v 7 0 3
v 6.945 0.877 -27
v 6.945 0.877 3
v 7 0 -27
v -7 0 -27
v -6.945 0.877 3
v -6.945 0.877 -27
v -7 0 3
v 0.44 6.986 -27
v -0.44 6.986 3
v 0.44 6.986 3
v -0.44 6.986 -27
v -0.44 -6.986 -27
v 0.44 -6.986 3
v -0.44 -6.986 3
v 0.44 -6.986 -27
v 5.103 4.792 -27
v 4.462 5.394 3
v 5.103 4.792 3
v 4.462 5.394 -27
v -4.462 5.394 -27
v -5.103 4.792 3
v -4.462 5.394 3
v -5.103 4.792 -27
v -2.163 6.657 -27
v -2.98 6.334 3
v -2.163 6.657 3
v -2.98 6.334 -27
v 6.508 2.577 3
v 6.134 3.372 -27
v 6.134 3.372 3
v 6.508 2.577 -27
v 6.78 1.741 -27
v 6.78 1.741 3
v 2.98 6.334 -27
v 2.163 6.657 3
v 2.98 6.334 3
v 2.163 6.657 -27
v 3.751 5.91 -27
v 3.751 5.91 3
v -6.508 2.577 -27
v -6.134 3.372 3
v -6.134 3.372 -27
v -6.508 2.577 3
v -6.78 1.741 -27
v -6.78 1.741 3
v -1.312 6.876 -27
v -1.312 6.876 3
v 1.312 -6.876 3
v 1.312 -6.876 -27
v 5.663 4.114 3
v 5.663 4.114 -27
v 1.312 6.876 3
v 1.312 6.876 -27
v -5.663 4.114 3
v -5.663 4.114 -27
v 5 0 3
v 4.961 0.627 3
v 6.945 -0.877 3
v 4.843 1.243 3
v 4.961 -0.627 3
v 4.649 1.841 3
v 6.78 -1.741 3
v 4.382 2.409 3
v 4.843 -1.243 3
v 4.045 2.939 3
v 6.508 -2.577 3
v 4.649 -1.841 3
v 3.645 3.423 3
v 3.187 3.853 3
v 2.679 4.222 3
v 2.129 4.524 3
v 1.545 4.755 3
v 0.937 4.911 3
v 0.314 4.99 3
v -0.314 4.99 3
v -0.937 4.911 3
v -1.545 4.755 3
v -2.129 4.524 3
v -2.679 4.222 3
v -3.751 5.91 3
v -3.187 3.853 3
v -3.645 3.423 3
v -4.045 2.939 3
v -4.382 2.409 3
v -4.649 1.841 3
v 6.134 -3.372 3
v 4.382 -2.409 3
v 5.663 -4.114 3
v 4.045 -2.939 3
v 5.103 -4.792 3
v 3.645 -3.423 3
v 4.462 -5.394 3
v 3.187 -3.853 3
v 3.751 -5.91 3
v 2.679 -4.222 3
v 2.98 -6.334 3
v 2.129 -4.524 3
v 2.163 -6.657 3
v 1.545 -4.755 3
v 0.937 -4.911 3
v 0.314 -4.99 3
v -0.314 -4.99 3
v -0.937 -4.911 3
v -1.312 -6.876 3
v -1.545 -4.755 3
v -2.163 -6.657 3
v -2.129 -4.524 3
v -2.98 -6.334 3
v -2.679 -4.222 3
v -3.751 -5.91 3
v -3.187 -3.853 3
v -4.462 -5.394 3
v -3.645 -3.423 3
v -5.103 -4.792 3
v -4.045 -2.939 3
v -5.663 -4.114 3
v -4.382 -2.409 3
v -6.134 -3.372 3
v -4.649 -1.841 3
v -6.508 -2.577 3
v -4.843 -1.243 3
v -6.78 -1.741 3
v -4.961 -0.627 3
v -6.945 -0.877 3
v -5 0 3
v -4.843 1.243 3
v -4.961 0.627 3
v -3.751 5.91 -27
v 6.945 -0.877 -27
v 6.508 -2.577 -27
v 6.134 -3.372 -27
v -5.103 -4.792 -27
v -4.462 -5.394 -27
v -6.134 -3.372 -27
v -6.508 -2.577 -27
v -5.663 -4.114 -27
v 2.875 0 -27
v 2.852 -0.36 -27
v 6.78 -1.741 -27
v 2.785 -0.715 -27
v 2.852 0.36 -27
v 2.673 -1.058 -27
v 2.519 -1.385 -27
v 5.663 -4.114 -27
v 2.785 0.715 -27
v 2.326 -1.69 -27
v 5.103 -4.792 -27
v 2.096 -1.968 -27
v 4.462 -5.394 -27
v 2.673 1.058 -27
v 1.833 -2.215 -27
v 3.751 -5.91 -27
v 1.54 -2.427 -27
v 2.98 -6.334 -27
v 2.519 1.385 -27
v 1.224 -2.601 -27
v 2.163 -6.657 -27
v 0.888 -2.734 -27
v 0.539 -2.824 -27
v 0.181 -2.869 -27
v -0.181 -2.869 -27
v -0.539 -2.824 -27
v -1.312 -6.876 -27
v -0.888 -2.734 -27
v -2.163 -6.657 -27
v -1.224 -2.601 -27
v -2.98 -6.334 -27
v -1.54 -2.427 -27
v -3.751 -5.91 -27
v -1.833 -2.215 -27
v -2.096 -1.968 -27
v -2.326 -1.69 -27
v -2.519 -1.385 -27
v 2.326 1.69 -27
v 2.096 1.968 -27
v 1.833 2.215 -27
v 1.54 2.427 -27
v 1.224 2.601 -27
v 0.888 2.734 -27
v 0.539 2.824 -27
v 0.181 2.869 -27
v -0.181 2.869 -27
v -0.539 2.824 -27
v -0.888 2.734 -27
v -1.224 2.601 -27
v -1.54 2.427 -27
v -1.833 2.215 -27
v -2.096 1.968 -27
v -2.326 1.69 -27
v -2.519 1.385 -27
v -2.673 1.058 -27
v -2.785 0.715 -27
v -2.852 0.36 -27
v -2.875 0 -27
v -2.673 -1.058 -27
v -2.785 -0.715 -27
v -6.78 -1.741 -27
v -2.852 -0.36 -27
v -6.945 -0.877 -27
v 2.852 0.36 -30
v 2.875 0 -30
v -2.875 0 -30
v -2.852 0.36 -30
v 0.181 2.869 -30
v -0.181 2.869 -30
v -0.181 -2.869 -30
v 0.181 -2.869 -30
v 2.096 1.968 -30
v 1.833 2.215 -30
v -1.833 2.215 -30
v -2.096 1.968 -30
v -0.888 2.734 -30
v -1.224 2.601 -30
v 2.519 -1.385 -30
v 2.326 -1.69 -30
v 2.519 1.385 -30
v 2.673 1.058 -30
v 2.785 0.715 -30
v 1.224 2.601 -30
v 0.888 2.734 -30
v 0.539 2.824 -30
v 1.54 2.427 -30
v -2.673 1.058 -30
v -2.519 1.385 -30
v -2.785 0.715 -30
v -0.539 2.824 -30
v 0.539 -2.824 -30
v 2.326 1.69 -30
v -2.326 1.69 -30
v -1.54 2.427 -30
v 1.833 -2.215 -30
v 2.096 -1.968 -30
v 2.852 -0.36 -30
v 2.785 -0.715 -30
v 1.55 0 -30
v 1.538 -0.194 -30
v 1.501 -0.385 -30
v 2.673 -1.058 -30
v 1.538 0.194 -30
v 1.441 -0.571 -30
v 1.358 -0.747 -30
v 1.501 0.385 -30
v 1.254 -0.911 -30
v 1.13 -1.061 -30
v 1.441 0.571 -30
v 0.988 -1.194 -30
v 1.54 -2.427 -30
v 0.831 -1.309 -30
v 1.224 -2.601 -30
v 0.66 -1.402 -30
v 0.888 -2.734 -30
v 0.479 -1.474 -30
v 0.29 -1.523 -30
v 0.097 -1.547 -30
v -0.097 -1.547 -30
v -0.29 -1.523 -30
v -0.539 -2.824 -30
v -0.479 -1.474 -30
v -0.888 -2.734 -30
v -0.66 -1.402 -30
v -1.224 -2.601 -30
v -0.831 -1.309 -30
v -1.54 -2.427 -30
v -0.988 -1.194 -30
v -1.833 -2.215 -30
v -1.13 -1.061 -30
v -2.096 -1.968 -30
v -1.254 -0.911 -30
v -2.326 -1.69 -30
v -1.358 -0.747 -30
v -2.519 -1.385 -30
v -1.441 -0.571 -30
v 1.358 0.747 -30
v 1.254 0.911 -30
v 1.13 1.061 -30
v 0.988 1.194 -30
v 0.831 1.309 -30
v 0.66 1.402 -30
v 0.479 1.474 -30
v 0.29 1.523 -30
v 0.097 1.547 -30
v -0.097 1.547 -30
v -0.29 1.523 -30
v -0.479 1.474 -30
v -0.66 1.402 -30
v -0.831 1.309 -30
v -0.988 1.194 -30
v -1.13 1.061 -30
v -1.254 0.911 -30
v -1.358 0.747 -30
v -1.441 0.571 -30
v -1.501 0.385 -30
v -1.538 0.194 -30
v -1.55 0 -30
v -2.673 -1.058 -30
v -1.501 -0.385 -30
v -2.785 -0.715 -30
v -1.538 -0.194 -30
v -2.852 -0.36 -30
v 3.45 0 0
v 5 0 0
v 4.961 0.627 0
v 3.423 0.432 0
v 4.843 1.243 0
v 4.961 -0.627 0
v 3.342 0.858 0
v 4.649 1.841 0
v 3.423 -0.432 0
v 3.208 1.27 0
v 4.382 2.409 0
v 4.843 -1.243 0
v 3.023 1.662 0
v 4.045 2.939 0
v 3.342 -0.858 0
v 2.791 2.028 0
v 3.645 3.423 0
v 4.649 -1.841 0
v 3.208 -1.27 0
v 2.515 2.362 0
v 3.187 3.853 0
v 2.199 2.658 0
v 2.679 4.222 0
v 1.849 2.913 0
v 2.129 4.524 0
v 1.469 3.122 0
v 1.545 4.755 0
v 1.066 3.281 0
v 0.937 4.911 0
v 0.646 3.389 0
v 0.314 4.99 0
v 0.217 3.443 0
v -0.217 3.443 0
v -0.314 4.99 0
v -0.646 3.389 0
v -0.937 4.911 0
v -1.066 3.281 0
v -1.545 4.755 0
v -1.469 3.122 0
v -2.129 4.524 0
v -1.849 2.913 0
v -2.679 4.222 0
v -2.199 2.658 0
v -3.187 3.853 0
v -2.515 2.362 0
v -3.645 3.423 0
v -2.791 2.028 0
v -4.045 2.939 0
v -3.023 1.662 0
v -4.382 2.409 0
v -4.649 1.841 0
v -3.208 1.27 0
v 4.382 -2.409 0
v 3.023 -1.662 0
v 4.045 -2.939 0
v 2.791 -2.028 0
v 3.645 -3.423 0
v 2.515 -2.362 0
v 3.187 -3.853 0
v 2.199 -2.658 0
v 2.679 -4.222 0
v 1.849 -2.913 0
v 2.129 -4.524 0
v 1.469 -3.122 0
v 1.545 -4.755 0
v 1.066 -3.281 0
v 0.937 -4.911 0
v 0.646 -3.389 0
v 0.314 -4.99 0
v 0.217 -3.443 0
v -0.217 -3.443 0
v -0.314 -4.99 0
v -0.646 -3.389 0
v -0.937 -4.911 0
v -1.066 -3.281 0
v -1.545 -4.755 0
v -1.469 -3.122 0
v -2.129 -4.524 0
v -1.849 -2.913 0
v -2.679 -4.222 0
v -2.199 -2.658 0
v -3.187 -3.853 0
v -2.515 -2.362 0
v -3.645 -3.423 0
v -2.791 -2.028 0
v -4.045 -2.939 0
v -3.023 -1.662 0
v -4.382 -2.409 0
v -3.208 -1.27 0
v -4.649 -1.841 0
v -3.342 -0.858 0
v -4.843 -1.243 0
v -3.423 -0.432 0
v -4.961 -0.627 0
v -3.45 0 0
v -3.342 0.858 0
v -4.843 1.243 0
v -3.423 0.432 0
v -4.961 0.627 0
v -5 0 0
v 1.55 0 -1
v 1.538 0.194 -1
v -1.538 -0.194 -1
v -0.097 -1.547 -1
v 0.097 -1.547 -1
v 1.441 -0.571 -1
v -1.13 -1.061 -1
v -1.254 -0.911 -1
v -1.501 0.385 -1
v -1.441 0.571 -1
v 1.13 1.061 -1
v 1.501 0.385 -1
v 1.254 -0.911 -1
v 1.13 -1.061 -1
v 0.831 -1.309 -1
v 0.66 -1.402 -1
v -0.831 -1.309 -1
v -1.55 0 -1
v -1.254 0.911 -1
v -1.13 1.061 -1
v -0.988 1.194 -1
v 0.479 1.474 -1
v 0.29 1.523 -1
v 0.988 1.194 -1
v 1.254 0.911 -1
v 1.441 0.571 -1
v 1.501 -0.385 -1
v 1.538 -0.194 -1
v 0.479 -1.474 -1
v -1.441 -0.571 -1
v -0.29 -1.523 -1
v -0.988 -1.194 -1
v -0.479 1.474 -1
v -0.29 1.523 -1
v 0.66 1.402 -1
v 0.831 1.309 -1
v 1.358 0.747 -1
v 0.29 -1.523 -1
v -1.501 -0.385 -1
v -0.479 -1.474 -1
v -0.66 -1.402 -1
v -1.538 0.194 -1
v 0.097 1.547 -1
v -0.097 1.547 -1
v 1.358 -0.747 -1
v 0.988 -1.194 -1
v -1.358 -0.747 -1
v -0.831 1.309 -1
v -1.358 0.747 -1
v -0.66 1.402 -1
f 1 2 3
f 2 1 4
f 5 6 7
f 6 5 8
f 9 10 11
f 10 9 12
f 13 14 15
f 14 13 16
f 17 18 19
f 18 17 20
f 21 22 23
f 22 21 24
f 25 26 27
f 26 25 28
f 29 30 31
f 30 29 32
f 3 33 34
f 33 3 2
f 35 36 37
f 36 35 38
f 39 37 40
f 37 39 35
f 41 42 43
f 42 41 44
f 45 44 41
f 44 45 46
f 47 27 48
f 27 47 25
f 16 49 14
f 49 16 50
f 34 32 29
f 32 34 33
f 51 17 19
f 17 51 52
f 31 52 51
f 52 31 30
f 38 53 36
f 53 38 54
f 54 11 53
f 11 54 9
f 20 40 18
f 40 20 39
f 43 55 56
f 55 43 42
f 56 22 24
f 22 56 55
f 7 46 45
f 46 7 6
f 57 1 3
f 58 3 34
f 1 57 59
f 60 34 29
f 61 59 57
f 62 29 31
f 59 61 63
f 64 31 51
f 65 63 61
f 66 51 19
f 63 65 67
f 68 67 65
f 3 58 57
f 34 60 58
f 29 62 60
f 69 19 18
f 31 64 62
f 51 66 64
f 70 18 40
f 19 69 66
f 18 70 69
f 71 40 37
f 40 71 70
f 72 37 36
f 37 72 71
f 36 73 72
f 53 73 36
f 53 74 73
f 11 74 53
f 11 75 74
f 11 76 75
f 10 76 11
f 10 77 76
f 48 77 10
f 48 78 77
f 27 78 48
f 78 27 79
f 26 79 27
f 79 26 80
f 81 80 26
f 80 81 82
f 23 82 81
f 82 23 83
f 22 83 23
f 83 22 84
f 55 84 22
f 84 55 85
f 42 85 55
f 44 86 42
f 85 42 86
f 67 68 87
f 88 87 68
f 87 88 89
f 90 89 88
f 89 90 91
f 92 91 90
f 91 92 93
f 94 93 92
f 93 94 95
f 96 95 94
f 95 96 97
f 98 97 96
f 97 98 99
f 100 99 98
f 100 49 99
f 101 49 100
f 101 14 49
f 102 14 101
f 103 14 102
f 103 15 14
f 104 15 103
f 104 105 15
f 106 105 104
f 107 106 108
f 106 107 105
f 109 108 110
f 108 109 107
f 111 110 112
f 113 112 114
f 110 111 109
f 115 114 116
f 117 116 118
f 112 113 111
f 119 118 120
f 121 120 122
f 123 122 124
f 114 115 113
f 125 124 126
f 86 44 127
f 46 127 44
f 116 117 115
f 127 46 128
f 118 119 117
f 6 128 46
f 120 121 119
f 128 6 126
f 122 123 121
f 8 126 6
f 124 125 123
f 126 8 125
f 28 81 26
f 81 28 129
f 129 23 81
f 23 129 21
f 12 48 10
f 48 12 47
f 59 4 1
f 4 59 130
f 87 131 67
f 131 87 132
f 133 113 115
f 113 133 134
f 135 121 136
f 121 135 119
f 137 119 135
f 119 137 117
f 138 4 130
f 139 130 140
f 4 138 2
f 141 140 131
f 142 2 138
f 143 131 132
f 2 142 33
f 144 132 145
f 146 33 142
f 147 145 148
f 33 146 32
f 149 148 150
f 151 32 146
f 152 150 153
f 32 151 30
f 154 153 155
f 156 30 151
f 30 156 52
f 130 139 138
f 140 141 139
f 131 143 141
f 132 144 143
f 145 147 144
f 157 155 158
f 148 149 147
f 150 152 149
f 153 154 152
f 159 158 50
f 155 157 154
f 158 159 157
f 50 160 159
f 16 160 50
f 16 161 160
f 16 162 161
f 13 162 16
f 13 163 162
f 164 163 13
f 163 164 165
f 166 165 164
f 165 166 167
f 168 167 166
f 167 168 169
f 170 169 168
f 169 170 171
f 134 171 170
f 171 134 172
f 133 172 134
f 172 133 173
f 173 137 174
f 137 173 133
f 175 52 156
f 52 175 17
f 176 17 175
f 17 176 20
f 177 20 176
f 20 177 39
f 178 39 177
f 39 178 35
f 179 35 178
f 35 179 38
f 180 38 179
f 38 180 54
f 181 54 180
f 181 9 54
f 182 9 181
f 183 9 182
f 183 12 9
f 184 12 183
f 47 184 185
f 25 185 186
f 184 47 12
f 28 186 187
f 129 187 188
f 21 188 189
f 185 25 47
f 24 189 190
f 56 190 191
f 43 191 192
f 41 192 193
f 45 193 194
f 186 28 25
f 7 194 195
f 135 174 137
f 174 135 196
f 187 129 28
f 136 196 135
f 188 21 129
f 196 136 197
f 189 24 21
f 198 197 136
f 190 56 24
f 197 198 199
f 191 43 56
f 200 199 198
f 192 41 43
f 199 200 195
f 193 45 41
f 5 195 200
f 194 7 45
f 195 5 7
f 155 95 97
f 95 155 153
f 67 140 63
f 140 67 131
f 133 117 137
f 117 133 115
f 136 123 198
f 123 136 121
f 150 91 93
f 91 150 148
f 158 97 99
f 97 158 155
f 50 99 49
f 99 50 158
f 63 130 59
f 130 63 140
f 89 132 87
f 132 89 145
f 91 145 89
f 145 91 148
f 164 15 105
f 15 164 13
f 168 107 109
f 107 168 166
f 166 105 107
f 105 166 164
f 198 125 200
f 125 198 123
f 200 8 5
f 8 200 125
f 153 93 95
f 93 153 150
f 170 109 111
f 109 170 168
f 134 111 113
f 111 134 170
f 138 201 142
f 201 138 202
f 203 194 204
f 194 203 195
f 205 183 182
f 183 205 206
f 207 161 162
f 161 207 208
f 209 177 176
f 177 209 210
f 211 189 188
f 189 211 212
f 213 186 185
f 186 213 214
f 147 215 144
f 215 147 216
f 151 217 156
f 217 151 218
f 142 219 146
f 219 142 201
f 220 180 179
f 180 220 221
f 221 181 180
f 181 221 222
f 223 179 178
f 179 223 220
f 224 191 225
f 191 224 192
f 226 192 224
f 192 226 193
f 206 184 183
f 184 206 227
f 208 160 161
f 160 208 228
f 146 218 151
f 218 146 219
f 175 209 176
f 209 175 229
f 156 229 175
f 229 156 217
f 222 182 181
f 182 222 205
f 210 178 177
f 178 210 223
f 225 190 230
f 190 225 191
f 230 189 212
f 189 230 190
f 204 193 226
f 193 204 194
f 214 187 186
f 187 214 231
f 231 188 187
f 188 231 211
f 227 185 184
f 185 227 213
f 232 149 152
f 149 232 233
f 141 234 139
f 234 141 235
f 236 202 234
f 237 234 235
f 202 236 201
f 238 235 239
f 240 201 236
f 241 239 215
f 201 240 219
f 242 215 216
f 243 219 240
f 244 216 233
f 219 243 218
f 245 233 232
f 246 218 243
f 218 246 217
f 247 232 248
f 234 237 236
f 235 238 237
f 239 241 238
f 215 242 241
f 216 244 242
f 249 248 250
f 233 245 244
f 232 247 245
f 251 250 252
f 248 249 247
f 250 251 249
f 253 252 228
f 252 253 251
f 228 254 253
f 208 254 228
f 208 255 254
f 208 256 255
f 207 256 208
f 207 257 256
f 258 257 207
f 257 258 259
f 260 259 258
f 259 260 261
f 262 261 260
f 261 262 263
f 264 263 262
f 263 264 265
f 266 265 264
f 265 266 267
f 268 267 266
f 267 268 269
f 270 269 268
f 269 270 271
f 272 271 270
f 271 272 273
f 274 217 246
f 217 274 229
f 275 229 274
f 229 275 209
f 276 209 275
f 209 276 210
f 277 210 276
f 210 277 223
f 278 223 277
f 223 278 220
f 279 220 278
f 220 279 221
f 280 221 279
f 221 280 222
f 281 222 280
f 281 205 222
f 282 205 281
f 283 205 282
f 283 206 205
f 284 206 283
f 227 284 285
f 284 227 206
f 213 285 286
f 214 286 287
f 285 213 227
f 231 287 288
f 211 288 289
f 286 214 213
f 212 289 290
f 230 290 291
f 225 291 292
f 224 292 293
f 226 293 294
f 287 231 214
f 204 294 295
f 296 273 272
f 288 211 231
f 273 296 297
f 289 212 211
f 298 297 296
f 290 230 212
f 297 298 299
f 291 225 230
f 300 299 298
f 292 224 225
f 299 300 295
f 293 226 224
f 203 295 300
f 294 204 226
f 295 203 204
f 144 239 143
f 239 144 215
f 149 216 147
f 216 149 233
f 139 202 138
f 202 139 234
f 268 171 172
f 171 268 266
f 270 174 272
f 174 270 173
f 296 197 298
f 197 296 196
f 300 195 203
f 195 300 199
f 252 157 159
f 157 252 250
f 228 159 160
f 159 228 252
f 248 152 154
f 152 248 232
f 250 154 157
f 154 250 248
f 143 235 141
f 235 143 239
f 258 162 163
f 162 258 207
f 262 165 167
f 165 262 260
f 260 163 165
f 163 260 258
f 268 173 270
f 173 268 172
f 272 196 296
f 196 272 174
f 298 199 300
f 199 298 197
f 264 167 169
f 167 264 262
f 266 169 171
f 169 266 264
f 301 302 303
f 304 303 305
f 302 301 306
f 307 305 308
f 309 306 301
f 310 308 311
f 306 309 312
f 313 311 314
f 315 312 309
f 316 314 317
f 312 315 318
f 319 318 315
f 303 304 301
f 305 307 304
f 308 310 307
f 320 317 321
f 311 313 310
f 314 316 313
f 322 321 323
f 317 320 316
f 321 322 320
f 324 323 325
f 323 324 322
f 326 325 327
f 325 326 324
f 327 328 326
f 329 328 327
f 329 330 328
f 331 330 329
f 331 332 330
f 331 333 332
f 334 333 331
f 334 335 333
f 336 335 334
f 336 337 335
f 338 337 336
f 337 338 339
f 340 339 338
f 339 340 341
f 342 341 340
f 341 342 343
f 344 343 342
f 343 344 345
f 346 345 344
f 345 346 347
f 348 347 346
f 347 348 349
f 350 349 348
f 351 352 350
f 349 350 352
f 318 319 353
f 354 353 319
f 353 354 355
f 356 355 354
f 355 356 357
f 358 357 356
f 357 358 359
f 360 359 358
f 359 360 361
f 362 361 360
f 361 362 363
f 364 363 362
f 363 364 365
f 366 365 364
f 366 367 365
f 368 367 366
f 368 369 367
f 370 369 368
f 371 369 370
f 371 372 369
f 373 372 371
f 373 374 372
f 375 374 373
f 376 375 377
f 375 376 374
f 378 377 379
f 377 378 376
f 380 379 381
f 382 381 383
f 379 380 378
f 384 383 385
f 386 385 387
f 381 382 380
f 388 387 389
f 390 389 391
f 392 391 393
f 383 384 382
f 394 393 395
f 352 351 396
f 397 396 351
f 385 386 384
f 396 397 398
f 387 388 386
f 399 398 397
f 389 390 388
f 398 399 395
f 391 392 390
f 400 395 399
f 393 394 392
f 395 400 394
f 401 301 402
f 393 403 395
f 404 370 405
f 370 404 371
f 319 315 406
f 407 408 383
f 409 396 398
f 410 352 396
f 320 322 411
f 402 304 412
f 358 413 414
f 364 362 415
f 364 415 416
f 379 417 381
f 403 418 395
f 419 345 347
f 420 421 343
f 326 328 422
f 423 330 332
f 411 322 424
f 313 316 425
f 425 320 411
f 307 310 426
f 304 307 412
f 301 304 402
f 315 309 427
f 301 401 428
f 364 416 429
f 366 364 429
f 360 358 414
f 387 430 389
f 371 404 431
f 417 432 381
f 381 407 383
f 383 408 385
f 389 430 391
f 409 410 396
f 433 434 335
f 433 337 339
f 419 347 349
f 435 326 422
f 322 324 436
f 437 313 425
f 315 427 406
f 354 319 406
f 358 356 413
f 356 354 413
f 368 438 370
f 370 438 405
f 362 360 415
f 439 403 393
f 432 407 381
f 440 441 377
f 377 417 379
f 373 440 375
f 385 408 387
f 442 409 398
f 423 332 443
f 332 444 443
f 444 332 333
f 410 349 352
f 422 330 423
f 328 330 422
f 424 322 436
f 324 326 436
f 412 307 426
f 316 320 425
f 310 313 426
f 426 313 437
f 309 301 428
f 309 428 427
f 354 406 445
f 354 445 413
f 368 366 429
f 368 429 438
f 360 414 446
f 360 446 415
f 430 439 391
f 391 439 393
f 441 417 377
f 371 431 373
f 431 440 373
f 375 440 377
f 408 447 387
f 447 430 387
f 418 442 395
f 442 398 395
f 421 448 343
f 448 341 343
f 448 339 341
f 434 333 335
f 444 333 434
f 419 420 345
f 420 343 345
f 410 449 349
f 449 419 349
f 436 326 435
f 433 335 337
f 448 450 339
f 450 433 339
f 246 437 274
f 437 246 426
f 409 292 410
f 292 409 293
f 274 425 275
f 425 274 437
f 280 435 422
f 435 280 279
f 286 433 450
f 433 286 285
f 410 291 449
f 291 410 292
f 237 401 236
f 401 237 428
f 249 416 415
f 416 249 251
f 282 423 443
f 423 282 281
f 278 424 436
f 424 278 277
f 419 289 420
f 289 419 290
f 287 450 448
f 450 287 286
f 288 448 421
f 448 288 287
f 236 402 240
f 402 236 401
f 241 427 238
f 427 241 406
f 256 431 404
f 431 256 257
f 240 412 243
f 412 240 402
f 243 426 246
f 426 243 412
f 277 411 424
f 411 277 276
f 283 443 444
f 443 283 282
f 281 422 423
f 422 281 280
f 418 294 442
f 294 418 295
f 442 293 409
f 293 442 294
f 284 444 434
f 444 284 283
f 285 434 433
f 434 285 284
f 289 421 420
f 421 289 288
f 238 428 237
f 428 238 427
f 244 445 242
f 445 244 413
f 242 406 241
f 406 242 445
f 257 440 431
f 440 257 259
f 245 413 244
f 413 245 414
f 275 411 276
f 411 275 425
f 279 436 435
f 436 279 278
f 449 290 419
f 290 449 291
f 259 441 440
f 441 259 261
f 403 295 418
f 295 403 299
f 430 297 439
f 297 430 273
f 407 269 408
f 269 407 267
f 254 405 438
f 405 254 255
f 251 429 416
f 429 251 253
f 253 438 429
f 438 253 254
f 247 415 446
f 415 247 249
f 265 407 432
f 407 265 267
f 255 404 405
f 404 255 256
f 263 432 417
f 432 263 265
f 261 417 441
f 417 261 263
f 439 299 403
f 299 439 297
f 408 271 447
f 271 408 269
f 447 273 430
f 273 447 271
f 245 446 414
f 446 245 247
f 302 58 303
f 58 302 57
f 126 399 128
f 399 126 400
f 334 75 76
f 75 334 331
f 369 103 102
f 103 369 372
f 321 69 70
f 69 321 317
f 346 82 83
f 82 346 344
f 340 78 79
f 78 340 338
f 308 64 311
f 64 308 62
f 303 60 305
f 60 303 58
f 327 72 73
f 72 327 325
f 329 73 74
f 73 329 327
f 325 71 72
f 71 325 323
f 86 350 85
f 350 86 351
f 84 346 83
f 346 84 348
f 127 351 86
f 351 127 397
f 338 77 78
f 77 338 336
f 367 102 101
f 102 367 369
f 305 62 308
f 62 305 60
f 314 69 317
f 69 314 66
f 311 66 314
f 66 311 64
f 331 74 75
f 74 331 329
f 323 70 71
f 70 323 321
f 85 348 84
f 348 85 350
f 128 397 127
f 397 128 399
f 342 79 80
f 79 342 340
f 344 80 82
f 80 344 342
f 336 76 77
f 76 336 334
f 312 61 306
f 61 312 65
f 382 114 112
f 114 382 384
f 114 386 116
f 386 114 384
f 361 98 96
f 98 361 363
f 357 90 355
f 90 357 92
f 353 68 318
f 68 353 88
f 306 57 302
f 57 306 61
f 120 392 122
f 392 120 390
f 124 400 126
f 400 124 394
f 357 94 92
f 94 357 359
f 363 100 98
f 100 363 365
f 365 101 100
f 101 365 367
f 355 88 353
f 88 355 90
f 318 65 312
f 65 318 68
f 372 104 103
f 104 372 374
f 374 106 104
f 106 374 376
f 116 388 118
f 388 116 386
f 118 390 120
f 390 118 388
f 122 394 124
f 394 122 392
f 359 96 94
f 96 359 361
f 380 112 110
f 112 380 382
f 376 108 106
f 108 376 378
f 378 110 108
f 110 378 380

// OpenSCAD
$fn = 50;

difference() {
	union() {
		translate(v = [0, 0, -27.0]) {
			cylinder(h = 30, r = 7.0);
		}
		#translate(v = [0, 0, -30.0]) {
			cylinder(h = 30, r = 2.875);
		}
	}
	union() {
		translate(v = [0, 0, 0]) {
			rotate(a = [0, 0, 0]) {
				difference() {
					union() {
						translate(v = [0, 0, -30.0]) {
							cylinder(h = 30, r = 1.25);
						}
						translate(v = [0, 0, -1.0]) {
							cylinder(h = 1.0, r1 = 1.55, r2 = 3.45);
						}
						translate(v = [0, 0, -30.0]) {
							cylinder(h = 30, r = 1.55);
						}
						translate(v = [0, 0, -30.0]) {
							cylinder(h = 30, r = 1.25);
						}
					}
					union();
				}
			}
		}
		#cylinder(h = 3, r = 5.0);
	}
}
